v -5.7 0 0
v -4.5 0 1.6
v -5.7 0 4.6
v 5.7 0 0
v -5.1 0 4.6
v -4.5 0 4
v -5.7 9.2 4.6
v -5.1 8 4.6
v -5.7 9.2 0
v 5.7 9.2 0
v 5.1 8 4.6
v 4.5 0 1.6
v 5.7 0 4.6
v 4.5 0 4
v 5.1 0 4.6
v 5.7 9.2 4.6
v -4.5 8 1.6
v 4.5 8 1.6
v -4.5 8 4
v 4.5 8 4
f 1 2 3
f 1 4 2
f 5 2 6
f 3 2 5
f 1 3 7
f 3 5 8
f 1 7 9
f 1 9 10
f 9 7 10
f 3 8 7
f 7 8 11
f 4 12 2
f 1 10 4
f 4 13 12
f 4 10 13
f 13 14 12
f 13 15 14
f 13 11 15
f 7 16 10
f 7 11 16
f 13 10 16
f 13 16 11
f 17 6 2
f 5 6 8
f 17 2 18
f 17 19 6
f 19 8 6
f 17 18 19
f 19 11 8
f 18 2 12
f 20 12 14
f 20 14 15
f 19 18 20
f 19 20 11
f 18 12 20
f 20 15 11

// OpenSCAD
// SPDX-License-Identifier: CC-BY-4.0
// SPDX-FileCopyrightText: 2026 Todd Sayre
// ============================================================
// Zip tie corner block sleeve — a TPU liner that goes between
// one leg of a corner block and the flat it bears on
//
// The block is rigid, and everything it presses against is a
// painted, powder-coated or anodized flat. This sleeve is the
// soft layer in between: it grips, it spreads the tie's load
// over a surface that is never quite flat, and it is the part
// that takes the scuffing instead of the finish underneath.
//
// It is a shallow tray. The floor is the pad, and it is the
// whole working surface — it lies on the block's inner face
// and bears on the object. Three lips stand off it, and they
// cover the three faces next to that one: the block's top, its
// bottom, and the end face at the tip of the leg. The fourth
// edge is not a face at all. It is where the corner relief
// cuts the block away and the other leg's sleeve sits, so
// there is nothing there to wrap.
//
// The lips are not the fastening. Glue is. What they do is
// hold the sleeve still while the glue is wet, and each pair
// does it in a different direction: the side lips square the
// sleeve up across the face, and the end lip is a stop that
// locates it along the leg. Pushed on until it meets the leg
// tip, the sleeve is placed in every direction at once, with
// nothing to line up by eye. TPU is printed a shade narrow
// across the channel and snaps onto the block, and the glue
// cures with everything already where it belongs.
//
// The end lip has to stay clear of the mouth of the block's
// channel, which opens in that same end face. It is asserted
// below, and it is the constraint that decides how far any of
// the lips can reach.
//
// ONE LEG, ONE SLEEVE. A block has two inner faces, so it
// takes two of these, and a set of four blocks takes eight.
// They are all the same part, and it is symmetric top to
// bottom, so there is no handedness and no right way up. There
// is a right way round: the end lip goes to the tip of the
// leg, and the open end to the corner.
//
// The sleeve stands the block off the flats by its own pad
// thickness, which lifts the tie the same amount. Nothing in
// the block minds, and the corner relief only gains clearance,
// but the echoed standoff below is the one the assembled joint
// actually has.
//
// THE PARAMETERS UP TO THE SECOND BLOCK BELOW ARE COPIES.
// They have to hold the same values as the block's, or the
// tray will not fit the block it was cut for. Change one and
// change it in both files.
//
// Modeled in its print orientation: pad flat on the plate,
// lips pointing up.
//
// PRINT NOTES:
// - TPU, no supports needed. Print as modeled, pad down.
// - Nothing in the part hangs, at all. Every face is vertical,
//   on the plate, or facing up — including the two lead-in
//   bevels at the side lips, which taper the tips at 45 deg
//   and so point upward rather than down.
// - Only the side lips are tapered. They are the pair that has
//   to snap over the block; the end lip is slid up to rather
//   than pushed over, so it stays square.
// - Pad down puts the plate's finish on the face that bears on
//   the object and leaves the printed top surface as the glue
//   face, which is the way round that suits both.
// - The block's foot chamfer leaves a groove along one edge
//   between the pad and the block. That is a glue reservoir,
//   not a gap to close.
// - 3 perimeters. At this size the lips are perimeters the
//   whole way through, which is what makes them springy rather
//   than crumbly.
// - Cyanoacrylate or contact cement. TPU takes both; the rigid
//   filament under it is what decides.
// - This source emits ONE sleeve. Print eight for a set of
//   four blocks.
// ============================================================

// ===== MEASURE THESE ON YOUR ACTUAL ZIP TIE =====
// The same two measurements the block is built from, and they set the height
// of the channel here. Each names the caliper it needs by the size printed on
// the tool: a 6 in caliper stops at 150 mm, an 8 in at 200 mm, a 12 in at
// 300 mm

// Width of the tie's strap (mm) — outside jaws across the flat of the strap,
// 6 in caliper. Measure the plain strap well away from the head
tie_width = 3.5;

// Thickness of the tie's strap (mm) — outside jaws on the edge of the strap,
// over the ratchet teeth rather than between them, 6 in caliper
tie_thickness = 1.3;

// ===== THESE MUST MATCH THE BLOCK =====
// Copies of the block's knobs, carried here because the sleeve has to come out
// the same size as the block it wraps. Nothing below is a free choice: read
// each one off the block's source and keep the two files in step

tie_clearance = 0.6; // The block's channel clearance — feeds the block height
deck = 1.6; // The block's top and bottom skins — feeds the block height
leg_length = 10; // How far the block reaches along each flat
corner_relief_d = 4; // The block's corner relief — where its inner face starts
bend_radius = 10; // The block's bend radius — feeds the leg thickness
corner_web = 2.5; // The block's corner web — feeds the leg thickness
outer_wall = 2.4; // The block's outer flange — feeds the leg thickness
foot_chamfer = 0.6; // The block's foot chamfer — the groove it leaves is the glue reservoir

// ===== DECIDE THESE =====
// The sleeve's own shape

// Thickness of the pad (mm). All of the cushion and all of the grip is this
// number, and it is also how far the block is stood off the flat. It has to
// stay under the corner relief radius or the two sleeves on one block meet at
// the corner
pad_thickness = 1.6;

// How far every lip folds over the face behind it (mm). Enough to hold the
// sleeve square and stop it while the glue goes off; it does not have to reach
// far, and the end lip is the one that runs out of room first, since the
// block's channel opens in the face it lies on
lip_reach = 3;

// Thickness of each lip (mm). Thin enough for the side pair to spring over the
// block, thick enough not to tear off it
lip_thickness = 1.2;

// ===== TUNE THESE =====
block_pinch = 0.2; // SUBTRACTED from the block height (mm) — the channel is printed narrow and stretched on, so it holds itself in place before it is glued
lip_lead_in = 0.6; // Taper at the mouth of each side lip (mm) — how far out of square the sleeve can start and still snap on

// ===== DERIVED =====
slot_w = tie_thickness + tie_clearance;
slot_h = tie_width + tie_clearance;
gable = slot_w;
relief_r = corner_relief_d / 2;

// The block's height, rebuilt from the same numbers the block builds it from.
// This is the dimension the channel has to match, so check it against the
// block's own echo
block_h = 2 * deck + slot_h + gable;

// The block's leg thickness, and how far its channel stands off the inner
// face, both rebuilt the same way. The side lips fold over a face that is
// leg_thickness deep; the end lip folds over one that is only clear as far as
// face_offset, because the channel's mouth is what comes next
tie_offset = ((sqrt(2) - 1) * bend_radius + slot_w / 2 + relief_r + corner_web) / sqrt(2);
face_offset = tie_offset - slot_w / 2;
leg_thickness = face_offset + slot_w + outer_wall;

// Length of the block's inner face, from where the corner relief lets go of it
// to the end of the leg. The pad covers all of it and no more
sleeve_length = leg_length - relief_r;

// Clear width of the channel. Narrower than the block by the pinch, which is
// what the side lips have to stretch over
gap = block_h - block_pinch;

// Outside of the tray. Each dimension is the block's own plus the lips that
// stand outside it — one lip at the end, two across
sleeve_width = gap + 2 * lip_thickness;
sleeve_overall = sleeve_length + lip_thickness;
sleeve_height = pad_thickness + lip_reach;

// Where the tie ends up once the sleeves are on: the block's own standoff plus
// the pad under it. This is the height the tie rides above each flat on the
// runs between blocks
sleeved_face_offset = face_offset + pad_thickness;

// What is left of the block's top and bottom faces outside the side lips. They
// fold over the face, not around the back of it
lip_clearance = leg_thickness - lip_reach;

// What is left of the end face between the end lip and the mouth of the
// block's channel. The tie comes out there, so this is the one that has to
// stay positive
mouth_clearance = face_offset - lip_reach;

// Just clear of a face, for a cut that has to overshoot one rather than land on
// it
eps = 0.01;

echo(str("sleeve = ", sleeve_width, " x ", sleeve_overall, " x ", sleeve_height, " mm"));
echo(str("channel = ", gap, " mm clear, onto a ", block_h, " mm block"));
echo(str("pad covers ", sleeve_length, " mm of face, ", pad_thickness, " mm thick"));
echo(str("side lips fold ", lip_reach, " mm over a ", leg_thickness, " mm leg, leaving ", lip_clearance, " mm"));
echo(str("end lip stops ", mouth_clearance, " mm short of the channel mouth"));
echo(str("glue groove along the chamfered edge = ", foot_chamfer, " mm"));
echo(str("tie stands off each flat by = ", sleeved_face_offset, " mm once sleeved"));
echo("print eight for a set of four blocks");

assert(pad_thickness > 0, "pad_thickness has to be positive — the pad is the whole point of the sleeve");
assert(pad_thickness < relief_r, "the two sleeves on one block would meet at the corner — thin the pad, or open corner_relief_d in both files");
assert(lip_thickness > 0, "lip_thickness has to be positive");
assert(lip_reach > 0, "lip_reach has to be positive — without the lips this is a shim, and it will not stay put");
assert(mouth_clearance > 0, "the end lip has reached the mouth of the block's channel and would cap the tie's exit — reduce lip_reach, or raise bend_radius in both files to stand the channel further off the flats");
assert(gap > 0, "block_pinch has closed the channel — it cannot be more negative than the block is tall");
assert(block_pinch >= 0, "a negative block_pinch is slack, and slack is what the side lips are there to remove — leave it at 0 for a slip fit");
assert(sleeve_length > 0, "the corner relief has eaten the whole inner face — lengthen leg_length or reduce corner_relief_d, in both files");
assert(lip_lead_in < lip_thickness, "the lead-in has tapered the side lips to nothing — reduce lip_lead_in");
assert(lip_lead_in < lip_reach, "the lead-in is deeper than the lips are long — reduce lip_lead_in");

// The channel, as a cross section: x is across the block's height, y is up out
// of the plate. It is the air above the pad and between the lips, with the
// lead-in taken off the mouth: that taper moves out and up by the same amount,
// so it is 45 deg whatever lip_lead_in is set to. The eps rides the same 45 deg
// line rather than stepping out square from the wall, because a square step
// would leave the lead-in the one face in the part past 45
//
// Only the mouth is tapered. The end lip is slid up to rather than pushed over,
// so it stays square, and a taper there would only shorten the stop
module channel_2d() {
  polygon([
    [-gap / 2, pad_thickness],
    [gap / 2, pad_thickness],
    [gap / 2, sleeve_height - lip_lead_in],
    [gap / 2 + lip_lead_in + eps, sleeve_height + eps],
    [-gap / 2 - lip_lead_in - eps, sleeve_height + eps],
    [-gap / 2, sleeve_height - lip_lead_in],
  ]);
}

// The channel run from clear of the open end to sleeve_length, so its far face
// is the end lip's inner face and its near face is out in the air rather than
// on the sleeve's own end
module channel() {
  translate([0, sleeve_length, 0])
    rotate([90, 0, 0])
      linear_extrude(sleeve_length + eps)
        channel_2d();
}

// The sleeve is the block with the channel cut out of it, rather than a pad
// unioned with three lips.
//
// That difference is not a matter of taste — it is what keeps the exported mesh
// watertight. A pad and a lip that share the plane x = sleeve_width / 2 present
// two coincident faces there, and the boolean that merges them leaves zero-area
// facets along the seam: the export comes out with a third of its facets
// carrying no area and its edges unmatched, which scripts/overhangs.py reports
// as not closed. Every face this cut makes is either inside the block or past
// it, so nothing is coplanar with anything, and the mesh comes out clean.
//
// The block is the tray's own silhouette. The pad already runs the full width
// and the lips are the outer edges of it, so the outline is a plain box and all
// of the tray is carved out of it. The end lip is what the cut leaves standing
// where it stops
module zip_tie_corner_block_sleeve() {
  difference() {
    translate([-sleeve_width / 2, 0, 0])
      cube([sleeve_width, sleeve_overall, sleeve_height]);

    channel();
  }
}

zip_tie_corner_block_sleeve();
